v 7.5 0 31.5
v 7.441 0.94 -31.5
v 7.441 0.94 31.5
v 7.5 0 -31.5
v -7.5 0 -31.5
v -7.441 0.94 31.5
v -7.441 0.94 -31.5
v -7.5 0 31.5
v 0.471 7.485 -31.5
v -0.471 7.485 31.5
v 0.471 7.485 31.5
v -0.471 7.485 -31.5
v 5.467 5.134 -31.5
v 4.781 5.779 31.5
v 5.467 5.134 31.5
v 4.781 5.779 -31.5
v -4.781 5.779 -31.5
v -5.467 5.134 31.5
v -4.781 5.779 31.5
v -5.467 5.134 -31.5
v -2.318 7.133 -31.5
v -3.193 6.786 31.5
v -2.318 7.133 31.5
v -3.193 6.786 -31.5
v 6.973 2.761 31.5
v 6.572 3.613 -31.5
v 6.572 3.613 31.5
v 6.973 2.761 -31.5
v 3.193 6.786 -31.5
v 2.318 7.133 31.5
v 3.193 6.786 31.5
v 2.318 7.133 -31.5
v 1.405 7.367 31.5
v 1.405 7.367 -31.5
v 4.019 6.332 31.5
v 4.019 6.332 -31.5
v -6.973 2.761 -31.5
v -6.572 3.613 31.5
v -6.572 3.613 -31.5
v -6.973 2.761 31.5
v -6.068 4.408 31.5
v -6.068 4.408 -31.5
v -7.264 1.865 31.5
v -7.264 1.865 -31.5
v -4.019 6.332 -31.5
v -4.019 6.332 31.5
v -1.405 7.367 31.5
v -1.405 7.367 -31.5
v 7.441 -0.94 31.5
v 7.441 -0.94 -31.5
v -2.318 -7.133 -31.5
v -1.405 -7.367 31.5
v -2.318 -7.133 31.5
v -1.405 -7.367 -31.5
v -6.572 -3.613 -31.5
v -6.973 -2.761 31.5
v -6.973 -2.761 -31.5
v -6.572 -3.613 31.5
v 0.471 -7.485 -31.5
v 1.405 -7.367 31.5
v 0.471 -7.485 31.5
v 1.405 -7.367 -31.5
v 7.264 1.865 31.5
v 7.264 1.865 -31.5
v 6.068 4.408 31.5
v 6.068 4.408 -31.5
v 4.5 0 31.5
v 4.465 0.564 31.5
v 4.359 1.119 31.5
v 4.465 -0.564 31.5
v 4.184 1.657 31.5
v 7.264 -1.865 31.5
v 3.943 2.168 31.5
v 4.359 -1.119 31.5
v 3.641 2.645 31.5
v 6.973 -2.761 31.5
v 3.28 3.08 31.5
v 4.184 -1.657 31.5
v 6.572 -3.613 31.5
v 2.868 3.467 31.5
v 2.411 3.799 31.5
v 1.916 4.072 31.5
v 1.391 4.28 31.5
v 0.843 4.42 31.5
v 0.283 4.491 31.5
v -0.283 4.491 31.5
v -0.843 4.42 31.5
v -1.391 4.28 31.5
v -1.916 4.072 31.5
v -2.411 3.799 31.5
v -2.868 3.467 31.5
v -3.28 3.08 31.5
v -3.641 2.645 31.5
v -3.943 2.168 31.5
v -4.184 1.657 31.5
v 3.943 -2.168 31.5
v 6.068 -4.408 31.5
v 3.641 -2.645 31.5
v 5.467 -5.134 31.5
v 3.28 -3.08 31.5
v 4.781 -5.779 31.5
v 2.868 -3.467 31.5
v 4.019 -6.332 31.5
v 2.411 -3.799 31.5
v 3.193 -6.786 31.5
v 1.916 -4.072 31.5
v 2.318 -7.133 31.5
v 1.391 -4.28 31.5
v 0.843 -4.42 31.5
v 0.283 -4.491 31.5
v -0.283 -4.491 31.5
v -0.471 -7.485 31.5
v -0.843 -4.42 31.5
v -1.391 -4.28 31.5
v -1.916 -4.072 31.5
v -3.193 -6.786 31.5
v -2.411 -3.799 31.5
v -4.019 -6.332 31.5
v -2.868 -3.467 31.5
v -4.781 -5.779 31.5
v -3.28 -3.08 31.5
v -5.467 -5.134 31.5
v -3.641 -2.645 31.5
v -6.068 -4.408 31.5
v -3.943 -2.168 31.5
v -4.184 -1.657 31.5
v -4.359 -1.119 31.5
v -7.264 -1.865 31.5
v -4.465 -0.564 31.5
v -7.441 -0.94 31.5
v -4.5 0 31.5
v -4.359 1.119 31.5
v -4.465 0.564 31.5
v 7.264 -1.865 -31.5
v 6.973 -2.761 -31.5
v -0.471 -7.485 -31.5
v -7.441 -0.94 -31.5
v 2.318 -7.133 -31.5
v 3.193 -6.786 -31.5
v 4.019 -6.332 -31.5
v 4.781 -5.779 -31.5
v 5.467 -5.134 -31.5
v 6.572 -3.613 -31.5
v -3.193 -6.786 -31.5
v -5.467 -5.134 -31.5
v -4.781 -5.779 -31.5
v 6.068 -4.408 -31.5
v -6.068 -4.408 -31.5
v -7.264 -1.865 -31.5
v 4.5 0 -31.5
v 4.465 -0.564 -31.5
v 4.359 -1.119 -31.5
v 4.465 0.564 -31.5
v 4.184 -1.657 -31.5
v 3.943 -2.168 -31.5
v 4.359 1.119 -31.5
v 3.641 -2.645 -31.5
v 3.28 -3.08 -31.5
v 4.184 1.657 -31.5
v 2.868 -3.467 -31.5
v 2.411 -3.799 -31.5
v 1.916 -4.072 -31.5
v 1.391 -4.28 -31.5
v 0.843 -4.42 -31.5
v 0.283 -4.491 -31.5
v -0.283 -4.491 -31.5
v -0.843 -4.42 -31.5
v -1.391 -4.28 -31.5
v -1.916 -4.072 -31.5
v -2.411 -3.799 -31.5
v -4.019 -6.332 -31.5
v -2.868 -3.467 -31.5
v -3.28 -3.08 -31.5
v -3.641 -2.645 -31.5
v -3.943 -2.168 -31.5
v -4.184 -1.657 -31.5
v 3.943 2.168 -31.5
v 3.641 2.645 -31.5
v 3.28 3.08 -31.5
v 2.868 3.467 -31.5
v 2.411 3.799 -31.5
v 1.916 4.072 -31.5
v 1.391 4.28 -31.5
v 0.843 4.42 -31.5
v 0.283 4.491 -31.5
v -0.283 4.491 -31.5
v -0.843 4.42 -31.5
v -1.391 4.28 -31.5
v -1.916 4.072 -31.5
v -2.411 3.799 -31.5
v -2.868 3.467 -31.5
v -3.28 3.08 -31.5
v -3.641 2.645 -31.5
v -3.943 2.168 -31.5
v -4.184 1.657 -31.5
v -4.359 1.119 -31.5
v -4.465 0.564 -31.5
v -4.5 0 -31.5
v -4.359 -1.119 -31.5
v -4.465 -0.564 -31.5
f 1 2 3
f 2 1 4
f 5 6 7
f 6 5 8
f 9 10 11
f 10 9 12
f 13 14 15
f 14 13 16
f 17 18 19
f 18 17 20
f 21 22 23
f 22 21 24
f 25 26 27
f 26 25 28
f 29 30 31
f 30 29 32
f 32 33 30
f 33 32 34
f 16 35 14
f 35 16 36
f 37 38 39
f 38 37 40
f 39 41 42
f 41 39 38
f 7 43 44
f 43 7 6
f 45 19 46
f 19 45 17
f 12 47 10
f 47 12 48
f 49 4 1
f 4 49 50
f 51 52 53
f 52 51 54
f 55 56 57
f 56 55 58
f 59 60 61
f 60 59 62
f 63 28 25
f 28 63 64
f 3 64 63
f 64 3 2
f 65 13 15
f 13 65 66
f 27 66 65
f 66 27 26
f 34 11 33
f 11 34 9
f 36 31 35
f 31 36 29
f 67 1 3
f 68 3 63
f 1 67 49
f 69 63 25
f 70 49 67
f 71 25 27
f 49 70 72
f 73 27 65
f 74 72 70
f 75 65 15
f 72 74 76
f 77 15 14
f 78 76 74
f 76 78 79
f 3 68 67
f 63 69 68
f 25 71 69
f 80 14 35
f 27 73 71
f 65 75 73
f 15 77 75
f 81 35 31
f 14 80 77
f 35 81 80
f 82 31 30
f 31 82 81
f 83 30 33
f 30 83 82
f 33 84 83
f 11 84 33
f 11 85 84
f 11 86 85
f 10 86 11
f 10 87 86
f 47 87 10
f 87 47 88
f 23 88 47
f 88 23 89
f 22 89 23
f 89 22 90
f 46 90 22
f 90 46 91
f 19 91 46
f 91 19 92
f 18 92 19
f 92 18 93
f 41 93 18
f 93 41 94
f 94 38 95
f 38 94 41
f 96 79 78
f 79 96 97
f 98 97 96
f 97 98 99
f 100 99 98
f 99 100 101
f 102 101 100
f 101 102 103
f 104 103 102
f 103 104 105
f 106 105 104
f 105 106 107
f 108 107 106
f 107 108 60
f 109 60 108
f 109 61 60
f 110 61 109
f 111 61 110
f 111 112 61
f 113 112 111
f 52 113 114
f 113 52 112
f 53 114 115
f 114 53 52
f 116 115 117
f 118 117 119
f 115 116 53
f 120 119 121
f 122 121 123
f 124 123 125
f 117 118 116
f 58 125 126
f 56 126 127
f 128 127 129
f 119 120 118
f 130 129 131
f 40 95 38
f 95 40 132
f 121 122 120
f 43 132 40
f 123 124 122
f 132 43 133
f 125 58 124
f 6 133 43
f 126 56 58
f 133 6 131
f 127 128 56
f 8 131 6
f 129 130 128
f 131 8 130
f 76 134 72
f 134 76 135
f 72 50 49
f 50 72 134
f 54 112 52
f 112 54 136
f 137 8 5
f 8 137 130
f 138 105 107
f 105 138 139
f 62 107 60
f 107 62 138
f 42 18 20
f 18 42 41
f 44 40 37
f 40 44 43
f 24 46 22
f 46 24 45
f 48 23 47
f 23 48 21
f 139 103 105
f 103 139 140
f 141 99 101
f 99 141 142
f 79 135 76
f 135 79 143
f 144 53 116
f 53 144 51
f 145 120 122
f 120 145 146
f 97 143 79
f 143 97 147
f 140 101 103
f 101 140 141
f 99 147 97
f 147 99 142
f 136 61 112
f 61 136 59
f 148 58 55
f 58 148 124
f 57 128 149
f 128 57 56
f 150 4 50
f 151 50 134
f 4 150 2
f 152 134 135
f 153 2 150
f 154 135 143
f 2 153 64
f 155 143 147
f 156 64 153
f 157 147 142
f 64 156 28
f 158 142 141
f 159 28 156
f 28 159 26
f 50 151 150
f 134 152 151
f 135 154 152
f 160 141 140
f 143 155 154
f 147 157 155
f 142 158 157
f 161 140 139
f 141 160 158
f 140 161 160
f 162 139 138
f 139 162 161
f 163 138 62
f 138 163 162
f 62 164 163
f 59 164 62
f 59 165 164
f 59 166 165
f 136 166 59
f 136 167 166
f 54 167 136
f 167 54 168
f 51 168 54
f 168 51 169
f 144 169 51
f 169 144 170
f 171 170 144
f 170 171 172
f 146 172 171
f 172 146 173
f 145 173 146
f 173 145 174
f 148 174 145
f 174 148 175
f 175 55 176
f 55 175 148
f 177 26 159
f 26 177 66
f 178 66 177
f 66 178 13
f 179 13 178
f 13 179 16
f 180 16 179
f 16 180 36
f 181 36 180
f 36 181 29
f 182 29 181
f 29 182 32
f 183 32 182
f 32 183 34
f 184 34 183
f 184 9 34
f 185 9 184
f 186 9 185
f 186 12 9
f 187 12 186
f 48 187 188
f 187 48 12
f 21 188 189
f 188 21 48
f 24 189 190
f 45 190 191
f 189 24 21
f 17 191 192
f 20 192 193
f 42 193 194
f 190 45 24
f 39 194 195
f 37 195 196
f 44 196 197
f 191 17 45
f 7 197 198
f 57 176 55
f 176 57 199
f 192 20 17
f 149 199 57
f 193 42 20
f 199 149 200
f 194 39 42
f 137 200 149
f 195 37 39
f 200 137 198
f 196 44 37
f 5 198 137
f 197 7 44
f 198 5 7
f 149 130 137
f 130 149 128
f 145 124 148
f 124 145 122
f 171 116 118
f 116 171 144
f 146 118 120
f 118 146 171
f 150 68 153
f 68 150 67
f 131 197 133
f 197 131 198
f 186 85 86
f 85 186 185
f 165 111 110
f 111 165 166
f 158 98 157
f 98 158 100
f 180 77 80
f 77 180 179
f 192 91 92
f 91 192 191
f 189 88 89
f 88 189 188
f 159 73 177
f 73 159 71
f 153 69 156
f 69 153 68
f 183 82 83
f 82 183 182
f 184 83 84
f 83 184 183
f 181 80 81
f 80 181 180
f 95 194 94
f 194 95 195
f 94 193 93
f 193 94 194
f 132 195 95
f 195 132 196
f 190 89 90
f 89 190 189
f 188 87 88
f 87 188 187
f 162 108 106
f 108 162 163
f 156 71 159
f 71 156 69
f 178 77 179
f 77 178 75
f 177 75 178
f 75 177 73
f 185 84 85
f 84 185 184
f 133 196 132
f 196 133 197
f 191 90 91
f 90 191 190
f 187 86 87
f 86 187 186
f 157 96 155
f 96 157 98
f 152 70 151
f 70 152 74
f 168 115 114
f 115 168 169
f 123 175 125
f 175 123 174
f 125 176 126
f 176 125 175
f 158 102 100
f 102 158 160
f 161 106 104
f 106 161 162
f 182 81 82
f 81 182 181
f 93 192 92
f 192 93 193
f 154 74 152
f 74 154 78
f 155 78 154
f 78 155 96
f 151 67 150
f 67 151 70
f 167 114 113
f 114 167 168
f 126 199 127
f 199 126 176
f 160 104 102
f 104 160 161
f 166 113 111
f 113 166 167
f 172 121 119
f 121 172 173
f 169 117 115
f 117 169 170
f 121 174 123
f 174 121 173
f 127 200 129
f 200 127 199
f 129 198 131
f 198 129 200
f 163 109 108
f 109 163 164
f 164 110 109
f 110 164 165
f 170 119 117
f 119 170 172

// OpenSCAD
$fn = 50;


difference() {
	union() {
		translate(v = [0, 0, -31.5000000000]) {
			cylinder(h = 63, r = 7.5000000000);
		}
	}
	union() {
		translate(v = [0, 0, -100.0000000000]) {
			cylinder(h = 200, r = 4.5000000000);
		}
	}
}
